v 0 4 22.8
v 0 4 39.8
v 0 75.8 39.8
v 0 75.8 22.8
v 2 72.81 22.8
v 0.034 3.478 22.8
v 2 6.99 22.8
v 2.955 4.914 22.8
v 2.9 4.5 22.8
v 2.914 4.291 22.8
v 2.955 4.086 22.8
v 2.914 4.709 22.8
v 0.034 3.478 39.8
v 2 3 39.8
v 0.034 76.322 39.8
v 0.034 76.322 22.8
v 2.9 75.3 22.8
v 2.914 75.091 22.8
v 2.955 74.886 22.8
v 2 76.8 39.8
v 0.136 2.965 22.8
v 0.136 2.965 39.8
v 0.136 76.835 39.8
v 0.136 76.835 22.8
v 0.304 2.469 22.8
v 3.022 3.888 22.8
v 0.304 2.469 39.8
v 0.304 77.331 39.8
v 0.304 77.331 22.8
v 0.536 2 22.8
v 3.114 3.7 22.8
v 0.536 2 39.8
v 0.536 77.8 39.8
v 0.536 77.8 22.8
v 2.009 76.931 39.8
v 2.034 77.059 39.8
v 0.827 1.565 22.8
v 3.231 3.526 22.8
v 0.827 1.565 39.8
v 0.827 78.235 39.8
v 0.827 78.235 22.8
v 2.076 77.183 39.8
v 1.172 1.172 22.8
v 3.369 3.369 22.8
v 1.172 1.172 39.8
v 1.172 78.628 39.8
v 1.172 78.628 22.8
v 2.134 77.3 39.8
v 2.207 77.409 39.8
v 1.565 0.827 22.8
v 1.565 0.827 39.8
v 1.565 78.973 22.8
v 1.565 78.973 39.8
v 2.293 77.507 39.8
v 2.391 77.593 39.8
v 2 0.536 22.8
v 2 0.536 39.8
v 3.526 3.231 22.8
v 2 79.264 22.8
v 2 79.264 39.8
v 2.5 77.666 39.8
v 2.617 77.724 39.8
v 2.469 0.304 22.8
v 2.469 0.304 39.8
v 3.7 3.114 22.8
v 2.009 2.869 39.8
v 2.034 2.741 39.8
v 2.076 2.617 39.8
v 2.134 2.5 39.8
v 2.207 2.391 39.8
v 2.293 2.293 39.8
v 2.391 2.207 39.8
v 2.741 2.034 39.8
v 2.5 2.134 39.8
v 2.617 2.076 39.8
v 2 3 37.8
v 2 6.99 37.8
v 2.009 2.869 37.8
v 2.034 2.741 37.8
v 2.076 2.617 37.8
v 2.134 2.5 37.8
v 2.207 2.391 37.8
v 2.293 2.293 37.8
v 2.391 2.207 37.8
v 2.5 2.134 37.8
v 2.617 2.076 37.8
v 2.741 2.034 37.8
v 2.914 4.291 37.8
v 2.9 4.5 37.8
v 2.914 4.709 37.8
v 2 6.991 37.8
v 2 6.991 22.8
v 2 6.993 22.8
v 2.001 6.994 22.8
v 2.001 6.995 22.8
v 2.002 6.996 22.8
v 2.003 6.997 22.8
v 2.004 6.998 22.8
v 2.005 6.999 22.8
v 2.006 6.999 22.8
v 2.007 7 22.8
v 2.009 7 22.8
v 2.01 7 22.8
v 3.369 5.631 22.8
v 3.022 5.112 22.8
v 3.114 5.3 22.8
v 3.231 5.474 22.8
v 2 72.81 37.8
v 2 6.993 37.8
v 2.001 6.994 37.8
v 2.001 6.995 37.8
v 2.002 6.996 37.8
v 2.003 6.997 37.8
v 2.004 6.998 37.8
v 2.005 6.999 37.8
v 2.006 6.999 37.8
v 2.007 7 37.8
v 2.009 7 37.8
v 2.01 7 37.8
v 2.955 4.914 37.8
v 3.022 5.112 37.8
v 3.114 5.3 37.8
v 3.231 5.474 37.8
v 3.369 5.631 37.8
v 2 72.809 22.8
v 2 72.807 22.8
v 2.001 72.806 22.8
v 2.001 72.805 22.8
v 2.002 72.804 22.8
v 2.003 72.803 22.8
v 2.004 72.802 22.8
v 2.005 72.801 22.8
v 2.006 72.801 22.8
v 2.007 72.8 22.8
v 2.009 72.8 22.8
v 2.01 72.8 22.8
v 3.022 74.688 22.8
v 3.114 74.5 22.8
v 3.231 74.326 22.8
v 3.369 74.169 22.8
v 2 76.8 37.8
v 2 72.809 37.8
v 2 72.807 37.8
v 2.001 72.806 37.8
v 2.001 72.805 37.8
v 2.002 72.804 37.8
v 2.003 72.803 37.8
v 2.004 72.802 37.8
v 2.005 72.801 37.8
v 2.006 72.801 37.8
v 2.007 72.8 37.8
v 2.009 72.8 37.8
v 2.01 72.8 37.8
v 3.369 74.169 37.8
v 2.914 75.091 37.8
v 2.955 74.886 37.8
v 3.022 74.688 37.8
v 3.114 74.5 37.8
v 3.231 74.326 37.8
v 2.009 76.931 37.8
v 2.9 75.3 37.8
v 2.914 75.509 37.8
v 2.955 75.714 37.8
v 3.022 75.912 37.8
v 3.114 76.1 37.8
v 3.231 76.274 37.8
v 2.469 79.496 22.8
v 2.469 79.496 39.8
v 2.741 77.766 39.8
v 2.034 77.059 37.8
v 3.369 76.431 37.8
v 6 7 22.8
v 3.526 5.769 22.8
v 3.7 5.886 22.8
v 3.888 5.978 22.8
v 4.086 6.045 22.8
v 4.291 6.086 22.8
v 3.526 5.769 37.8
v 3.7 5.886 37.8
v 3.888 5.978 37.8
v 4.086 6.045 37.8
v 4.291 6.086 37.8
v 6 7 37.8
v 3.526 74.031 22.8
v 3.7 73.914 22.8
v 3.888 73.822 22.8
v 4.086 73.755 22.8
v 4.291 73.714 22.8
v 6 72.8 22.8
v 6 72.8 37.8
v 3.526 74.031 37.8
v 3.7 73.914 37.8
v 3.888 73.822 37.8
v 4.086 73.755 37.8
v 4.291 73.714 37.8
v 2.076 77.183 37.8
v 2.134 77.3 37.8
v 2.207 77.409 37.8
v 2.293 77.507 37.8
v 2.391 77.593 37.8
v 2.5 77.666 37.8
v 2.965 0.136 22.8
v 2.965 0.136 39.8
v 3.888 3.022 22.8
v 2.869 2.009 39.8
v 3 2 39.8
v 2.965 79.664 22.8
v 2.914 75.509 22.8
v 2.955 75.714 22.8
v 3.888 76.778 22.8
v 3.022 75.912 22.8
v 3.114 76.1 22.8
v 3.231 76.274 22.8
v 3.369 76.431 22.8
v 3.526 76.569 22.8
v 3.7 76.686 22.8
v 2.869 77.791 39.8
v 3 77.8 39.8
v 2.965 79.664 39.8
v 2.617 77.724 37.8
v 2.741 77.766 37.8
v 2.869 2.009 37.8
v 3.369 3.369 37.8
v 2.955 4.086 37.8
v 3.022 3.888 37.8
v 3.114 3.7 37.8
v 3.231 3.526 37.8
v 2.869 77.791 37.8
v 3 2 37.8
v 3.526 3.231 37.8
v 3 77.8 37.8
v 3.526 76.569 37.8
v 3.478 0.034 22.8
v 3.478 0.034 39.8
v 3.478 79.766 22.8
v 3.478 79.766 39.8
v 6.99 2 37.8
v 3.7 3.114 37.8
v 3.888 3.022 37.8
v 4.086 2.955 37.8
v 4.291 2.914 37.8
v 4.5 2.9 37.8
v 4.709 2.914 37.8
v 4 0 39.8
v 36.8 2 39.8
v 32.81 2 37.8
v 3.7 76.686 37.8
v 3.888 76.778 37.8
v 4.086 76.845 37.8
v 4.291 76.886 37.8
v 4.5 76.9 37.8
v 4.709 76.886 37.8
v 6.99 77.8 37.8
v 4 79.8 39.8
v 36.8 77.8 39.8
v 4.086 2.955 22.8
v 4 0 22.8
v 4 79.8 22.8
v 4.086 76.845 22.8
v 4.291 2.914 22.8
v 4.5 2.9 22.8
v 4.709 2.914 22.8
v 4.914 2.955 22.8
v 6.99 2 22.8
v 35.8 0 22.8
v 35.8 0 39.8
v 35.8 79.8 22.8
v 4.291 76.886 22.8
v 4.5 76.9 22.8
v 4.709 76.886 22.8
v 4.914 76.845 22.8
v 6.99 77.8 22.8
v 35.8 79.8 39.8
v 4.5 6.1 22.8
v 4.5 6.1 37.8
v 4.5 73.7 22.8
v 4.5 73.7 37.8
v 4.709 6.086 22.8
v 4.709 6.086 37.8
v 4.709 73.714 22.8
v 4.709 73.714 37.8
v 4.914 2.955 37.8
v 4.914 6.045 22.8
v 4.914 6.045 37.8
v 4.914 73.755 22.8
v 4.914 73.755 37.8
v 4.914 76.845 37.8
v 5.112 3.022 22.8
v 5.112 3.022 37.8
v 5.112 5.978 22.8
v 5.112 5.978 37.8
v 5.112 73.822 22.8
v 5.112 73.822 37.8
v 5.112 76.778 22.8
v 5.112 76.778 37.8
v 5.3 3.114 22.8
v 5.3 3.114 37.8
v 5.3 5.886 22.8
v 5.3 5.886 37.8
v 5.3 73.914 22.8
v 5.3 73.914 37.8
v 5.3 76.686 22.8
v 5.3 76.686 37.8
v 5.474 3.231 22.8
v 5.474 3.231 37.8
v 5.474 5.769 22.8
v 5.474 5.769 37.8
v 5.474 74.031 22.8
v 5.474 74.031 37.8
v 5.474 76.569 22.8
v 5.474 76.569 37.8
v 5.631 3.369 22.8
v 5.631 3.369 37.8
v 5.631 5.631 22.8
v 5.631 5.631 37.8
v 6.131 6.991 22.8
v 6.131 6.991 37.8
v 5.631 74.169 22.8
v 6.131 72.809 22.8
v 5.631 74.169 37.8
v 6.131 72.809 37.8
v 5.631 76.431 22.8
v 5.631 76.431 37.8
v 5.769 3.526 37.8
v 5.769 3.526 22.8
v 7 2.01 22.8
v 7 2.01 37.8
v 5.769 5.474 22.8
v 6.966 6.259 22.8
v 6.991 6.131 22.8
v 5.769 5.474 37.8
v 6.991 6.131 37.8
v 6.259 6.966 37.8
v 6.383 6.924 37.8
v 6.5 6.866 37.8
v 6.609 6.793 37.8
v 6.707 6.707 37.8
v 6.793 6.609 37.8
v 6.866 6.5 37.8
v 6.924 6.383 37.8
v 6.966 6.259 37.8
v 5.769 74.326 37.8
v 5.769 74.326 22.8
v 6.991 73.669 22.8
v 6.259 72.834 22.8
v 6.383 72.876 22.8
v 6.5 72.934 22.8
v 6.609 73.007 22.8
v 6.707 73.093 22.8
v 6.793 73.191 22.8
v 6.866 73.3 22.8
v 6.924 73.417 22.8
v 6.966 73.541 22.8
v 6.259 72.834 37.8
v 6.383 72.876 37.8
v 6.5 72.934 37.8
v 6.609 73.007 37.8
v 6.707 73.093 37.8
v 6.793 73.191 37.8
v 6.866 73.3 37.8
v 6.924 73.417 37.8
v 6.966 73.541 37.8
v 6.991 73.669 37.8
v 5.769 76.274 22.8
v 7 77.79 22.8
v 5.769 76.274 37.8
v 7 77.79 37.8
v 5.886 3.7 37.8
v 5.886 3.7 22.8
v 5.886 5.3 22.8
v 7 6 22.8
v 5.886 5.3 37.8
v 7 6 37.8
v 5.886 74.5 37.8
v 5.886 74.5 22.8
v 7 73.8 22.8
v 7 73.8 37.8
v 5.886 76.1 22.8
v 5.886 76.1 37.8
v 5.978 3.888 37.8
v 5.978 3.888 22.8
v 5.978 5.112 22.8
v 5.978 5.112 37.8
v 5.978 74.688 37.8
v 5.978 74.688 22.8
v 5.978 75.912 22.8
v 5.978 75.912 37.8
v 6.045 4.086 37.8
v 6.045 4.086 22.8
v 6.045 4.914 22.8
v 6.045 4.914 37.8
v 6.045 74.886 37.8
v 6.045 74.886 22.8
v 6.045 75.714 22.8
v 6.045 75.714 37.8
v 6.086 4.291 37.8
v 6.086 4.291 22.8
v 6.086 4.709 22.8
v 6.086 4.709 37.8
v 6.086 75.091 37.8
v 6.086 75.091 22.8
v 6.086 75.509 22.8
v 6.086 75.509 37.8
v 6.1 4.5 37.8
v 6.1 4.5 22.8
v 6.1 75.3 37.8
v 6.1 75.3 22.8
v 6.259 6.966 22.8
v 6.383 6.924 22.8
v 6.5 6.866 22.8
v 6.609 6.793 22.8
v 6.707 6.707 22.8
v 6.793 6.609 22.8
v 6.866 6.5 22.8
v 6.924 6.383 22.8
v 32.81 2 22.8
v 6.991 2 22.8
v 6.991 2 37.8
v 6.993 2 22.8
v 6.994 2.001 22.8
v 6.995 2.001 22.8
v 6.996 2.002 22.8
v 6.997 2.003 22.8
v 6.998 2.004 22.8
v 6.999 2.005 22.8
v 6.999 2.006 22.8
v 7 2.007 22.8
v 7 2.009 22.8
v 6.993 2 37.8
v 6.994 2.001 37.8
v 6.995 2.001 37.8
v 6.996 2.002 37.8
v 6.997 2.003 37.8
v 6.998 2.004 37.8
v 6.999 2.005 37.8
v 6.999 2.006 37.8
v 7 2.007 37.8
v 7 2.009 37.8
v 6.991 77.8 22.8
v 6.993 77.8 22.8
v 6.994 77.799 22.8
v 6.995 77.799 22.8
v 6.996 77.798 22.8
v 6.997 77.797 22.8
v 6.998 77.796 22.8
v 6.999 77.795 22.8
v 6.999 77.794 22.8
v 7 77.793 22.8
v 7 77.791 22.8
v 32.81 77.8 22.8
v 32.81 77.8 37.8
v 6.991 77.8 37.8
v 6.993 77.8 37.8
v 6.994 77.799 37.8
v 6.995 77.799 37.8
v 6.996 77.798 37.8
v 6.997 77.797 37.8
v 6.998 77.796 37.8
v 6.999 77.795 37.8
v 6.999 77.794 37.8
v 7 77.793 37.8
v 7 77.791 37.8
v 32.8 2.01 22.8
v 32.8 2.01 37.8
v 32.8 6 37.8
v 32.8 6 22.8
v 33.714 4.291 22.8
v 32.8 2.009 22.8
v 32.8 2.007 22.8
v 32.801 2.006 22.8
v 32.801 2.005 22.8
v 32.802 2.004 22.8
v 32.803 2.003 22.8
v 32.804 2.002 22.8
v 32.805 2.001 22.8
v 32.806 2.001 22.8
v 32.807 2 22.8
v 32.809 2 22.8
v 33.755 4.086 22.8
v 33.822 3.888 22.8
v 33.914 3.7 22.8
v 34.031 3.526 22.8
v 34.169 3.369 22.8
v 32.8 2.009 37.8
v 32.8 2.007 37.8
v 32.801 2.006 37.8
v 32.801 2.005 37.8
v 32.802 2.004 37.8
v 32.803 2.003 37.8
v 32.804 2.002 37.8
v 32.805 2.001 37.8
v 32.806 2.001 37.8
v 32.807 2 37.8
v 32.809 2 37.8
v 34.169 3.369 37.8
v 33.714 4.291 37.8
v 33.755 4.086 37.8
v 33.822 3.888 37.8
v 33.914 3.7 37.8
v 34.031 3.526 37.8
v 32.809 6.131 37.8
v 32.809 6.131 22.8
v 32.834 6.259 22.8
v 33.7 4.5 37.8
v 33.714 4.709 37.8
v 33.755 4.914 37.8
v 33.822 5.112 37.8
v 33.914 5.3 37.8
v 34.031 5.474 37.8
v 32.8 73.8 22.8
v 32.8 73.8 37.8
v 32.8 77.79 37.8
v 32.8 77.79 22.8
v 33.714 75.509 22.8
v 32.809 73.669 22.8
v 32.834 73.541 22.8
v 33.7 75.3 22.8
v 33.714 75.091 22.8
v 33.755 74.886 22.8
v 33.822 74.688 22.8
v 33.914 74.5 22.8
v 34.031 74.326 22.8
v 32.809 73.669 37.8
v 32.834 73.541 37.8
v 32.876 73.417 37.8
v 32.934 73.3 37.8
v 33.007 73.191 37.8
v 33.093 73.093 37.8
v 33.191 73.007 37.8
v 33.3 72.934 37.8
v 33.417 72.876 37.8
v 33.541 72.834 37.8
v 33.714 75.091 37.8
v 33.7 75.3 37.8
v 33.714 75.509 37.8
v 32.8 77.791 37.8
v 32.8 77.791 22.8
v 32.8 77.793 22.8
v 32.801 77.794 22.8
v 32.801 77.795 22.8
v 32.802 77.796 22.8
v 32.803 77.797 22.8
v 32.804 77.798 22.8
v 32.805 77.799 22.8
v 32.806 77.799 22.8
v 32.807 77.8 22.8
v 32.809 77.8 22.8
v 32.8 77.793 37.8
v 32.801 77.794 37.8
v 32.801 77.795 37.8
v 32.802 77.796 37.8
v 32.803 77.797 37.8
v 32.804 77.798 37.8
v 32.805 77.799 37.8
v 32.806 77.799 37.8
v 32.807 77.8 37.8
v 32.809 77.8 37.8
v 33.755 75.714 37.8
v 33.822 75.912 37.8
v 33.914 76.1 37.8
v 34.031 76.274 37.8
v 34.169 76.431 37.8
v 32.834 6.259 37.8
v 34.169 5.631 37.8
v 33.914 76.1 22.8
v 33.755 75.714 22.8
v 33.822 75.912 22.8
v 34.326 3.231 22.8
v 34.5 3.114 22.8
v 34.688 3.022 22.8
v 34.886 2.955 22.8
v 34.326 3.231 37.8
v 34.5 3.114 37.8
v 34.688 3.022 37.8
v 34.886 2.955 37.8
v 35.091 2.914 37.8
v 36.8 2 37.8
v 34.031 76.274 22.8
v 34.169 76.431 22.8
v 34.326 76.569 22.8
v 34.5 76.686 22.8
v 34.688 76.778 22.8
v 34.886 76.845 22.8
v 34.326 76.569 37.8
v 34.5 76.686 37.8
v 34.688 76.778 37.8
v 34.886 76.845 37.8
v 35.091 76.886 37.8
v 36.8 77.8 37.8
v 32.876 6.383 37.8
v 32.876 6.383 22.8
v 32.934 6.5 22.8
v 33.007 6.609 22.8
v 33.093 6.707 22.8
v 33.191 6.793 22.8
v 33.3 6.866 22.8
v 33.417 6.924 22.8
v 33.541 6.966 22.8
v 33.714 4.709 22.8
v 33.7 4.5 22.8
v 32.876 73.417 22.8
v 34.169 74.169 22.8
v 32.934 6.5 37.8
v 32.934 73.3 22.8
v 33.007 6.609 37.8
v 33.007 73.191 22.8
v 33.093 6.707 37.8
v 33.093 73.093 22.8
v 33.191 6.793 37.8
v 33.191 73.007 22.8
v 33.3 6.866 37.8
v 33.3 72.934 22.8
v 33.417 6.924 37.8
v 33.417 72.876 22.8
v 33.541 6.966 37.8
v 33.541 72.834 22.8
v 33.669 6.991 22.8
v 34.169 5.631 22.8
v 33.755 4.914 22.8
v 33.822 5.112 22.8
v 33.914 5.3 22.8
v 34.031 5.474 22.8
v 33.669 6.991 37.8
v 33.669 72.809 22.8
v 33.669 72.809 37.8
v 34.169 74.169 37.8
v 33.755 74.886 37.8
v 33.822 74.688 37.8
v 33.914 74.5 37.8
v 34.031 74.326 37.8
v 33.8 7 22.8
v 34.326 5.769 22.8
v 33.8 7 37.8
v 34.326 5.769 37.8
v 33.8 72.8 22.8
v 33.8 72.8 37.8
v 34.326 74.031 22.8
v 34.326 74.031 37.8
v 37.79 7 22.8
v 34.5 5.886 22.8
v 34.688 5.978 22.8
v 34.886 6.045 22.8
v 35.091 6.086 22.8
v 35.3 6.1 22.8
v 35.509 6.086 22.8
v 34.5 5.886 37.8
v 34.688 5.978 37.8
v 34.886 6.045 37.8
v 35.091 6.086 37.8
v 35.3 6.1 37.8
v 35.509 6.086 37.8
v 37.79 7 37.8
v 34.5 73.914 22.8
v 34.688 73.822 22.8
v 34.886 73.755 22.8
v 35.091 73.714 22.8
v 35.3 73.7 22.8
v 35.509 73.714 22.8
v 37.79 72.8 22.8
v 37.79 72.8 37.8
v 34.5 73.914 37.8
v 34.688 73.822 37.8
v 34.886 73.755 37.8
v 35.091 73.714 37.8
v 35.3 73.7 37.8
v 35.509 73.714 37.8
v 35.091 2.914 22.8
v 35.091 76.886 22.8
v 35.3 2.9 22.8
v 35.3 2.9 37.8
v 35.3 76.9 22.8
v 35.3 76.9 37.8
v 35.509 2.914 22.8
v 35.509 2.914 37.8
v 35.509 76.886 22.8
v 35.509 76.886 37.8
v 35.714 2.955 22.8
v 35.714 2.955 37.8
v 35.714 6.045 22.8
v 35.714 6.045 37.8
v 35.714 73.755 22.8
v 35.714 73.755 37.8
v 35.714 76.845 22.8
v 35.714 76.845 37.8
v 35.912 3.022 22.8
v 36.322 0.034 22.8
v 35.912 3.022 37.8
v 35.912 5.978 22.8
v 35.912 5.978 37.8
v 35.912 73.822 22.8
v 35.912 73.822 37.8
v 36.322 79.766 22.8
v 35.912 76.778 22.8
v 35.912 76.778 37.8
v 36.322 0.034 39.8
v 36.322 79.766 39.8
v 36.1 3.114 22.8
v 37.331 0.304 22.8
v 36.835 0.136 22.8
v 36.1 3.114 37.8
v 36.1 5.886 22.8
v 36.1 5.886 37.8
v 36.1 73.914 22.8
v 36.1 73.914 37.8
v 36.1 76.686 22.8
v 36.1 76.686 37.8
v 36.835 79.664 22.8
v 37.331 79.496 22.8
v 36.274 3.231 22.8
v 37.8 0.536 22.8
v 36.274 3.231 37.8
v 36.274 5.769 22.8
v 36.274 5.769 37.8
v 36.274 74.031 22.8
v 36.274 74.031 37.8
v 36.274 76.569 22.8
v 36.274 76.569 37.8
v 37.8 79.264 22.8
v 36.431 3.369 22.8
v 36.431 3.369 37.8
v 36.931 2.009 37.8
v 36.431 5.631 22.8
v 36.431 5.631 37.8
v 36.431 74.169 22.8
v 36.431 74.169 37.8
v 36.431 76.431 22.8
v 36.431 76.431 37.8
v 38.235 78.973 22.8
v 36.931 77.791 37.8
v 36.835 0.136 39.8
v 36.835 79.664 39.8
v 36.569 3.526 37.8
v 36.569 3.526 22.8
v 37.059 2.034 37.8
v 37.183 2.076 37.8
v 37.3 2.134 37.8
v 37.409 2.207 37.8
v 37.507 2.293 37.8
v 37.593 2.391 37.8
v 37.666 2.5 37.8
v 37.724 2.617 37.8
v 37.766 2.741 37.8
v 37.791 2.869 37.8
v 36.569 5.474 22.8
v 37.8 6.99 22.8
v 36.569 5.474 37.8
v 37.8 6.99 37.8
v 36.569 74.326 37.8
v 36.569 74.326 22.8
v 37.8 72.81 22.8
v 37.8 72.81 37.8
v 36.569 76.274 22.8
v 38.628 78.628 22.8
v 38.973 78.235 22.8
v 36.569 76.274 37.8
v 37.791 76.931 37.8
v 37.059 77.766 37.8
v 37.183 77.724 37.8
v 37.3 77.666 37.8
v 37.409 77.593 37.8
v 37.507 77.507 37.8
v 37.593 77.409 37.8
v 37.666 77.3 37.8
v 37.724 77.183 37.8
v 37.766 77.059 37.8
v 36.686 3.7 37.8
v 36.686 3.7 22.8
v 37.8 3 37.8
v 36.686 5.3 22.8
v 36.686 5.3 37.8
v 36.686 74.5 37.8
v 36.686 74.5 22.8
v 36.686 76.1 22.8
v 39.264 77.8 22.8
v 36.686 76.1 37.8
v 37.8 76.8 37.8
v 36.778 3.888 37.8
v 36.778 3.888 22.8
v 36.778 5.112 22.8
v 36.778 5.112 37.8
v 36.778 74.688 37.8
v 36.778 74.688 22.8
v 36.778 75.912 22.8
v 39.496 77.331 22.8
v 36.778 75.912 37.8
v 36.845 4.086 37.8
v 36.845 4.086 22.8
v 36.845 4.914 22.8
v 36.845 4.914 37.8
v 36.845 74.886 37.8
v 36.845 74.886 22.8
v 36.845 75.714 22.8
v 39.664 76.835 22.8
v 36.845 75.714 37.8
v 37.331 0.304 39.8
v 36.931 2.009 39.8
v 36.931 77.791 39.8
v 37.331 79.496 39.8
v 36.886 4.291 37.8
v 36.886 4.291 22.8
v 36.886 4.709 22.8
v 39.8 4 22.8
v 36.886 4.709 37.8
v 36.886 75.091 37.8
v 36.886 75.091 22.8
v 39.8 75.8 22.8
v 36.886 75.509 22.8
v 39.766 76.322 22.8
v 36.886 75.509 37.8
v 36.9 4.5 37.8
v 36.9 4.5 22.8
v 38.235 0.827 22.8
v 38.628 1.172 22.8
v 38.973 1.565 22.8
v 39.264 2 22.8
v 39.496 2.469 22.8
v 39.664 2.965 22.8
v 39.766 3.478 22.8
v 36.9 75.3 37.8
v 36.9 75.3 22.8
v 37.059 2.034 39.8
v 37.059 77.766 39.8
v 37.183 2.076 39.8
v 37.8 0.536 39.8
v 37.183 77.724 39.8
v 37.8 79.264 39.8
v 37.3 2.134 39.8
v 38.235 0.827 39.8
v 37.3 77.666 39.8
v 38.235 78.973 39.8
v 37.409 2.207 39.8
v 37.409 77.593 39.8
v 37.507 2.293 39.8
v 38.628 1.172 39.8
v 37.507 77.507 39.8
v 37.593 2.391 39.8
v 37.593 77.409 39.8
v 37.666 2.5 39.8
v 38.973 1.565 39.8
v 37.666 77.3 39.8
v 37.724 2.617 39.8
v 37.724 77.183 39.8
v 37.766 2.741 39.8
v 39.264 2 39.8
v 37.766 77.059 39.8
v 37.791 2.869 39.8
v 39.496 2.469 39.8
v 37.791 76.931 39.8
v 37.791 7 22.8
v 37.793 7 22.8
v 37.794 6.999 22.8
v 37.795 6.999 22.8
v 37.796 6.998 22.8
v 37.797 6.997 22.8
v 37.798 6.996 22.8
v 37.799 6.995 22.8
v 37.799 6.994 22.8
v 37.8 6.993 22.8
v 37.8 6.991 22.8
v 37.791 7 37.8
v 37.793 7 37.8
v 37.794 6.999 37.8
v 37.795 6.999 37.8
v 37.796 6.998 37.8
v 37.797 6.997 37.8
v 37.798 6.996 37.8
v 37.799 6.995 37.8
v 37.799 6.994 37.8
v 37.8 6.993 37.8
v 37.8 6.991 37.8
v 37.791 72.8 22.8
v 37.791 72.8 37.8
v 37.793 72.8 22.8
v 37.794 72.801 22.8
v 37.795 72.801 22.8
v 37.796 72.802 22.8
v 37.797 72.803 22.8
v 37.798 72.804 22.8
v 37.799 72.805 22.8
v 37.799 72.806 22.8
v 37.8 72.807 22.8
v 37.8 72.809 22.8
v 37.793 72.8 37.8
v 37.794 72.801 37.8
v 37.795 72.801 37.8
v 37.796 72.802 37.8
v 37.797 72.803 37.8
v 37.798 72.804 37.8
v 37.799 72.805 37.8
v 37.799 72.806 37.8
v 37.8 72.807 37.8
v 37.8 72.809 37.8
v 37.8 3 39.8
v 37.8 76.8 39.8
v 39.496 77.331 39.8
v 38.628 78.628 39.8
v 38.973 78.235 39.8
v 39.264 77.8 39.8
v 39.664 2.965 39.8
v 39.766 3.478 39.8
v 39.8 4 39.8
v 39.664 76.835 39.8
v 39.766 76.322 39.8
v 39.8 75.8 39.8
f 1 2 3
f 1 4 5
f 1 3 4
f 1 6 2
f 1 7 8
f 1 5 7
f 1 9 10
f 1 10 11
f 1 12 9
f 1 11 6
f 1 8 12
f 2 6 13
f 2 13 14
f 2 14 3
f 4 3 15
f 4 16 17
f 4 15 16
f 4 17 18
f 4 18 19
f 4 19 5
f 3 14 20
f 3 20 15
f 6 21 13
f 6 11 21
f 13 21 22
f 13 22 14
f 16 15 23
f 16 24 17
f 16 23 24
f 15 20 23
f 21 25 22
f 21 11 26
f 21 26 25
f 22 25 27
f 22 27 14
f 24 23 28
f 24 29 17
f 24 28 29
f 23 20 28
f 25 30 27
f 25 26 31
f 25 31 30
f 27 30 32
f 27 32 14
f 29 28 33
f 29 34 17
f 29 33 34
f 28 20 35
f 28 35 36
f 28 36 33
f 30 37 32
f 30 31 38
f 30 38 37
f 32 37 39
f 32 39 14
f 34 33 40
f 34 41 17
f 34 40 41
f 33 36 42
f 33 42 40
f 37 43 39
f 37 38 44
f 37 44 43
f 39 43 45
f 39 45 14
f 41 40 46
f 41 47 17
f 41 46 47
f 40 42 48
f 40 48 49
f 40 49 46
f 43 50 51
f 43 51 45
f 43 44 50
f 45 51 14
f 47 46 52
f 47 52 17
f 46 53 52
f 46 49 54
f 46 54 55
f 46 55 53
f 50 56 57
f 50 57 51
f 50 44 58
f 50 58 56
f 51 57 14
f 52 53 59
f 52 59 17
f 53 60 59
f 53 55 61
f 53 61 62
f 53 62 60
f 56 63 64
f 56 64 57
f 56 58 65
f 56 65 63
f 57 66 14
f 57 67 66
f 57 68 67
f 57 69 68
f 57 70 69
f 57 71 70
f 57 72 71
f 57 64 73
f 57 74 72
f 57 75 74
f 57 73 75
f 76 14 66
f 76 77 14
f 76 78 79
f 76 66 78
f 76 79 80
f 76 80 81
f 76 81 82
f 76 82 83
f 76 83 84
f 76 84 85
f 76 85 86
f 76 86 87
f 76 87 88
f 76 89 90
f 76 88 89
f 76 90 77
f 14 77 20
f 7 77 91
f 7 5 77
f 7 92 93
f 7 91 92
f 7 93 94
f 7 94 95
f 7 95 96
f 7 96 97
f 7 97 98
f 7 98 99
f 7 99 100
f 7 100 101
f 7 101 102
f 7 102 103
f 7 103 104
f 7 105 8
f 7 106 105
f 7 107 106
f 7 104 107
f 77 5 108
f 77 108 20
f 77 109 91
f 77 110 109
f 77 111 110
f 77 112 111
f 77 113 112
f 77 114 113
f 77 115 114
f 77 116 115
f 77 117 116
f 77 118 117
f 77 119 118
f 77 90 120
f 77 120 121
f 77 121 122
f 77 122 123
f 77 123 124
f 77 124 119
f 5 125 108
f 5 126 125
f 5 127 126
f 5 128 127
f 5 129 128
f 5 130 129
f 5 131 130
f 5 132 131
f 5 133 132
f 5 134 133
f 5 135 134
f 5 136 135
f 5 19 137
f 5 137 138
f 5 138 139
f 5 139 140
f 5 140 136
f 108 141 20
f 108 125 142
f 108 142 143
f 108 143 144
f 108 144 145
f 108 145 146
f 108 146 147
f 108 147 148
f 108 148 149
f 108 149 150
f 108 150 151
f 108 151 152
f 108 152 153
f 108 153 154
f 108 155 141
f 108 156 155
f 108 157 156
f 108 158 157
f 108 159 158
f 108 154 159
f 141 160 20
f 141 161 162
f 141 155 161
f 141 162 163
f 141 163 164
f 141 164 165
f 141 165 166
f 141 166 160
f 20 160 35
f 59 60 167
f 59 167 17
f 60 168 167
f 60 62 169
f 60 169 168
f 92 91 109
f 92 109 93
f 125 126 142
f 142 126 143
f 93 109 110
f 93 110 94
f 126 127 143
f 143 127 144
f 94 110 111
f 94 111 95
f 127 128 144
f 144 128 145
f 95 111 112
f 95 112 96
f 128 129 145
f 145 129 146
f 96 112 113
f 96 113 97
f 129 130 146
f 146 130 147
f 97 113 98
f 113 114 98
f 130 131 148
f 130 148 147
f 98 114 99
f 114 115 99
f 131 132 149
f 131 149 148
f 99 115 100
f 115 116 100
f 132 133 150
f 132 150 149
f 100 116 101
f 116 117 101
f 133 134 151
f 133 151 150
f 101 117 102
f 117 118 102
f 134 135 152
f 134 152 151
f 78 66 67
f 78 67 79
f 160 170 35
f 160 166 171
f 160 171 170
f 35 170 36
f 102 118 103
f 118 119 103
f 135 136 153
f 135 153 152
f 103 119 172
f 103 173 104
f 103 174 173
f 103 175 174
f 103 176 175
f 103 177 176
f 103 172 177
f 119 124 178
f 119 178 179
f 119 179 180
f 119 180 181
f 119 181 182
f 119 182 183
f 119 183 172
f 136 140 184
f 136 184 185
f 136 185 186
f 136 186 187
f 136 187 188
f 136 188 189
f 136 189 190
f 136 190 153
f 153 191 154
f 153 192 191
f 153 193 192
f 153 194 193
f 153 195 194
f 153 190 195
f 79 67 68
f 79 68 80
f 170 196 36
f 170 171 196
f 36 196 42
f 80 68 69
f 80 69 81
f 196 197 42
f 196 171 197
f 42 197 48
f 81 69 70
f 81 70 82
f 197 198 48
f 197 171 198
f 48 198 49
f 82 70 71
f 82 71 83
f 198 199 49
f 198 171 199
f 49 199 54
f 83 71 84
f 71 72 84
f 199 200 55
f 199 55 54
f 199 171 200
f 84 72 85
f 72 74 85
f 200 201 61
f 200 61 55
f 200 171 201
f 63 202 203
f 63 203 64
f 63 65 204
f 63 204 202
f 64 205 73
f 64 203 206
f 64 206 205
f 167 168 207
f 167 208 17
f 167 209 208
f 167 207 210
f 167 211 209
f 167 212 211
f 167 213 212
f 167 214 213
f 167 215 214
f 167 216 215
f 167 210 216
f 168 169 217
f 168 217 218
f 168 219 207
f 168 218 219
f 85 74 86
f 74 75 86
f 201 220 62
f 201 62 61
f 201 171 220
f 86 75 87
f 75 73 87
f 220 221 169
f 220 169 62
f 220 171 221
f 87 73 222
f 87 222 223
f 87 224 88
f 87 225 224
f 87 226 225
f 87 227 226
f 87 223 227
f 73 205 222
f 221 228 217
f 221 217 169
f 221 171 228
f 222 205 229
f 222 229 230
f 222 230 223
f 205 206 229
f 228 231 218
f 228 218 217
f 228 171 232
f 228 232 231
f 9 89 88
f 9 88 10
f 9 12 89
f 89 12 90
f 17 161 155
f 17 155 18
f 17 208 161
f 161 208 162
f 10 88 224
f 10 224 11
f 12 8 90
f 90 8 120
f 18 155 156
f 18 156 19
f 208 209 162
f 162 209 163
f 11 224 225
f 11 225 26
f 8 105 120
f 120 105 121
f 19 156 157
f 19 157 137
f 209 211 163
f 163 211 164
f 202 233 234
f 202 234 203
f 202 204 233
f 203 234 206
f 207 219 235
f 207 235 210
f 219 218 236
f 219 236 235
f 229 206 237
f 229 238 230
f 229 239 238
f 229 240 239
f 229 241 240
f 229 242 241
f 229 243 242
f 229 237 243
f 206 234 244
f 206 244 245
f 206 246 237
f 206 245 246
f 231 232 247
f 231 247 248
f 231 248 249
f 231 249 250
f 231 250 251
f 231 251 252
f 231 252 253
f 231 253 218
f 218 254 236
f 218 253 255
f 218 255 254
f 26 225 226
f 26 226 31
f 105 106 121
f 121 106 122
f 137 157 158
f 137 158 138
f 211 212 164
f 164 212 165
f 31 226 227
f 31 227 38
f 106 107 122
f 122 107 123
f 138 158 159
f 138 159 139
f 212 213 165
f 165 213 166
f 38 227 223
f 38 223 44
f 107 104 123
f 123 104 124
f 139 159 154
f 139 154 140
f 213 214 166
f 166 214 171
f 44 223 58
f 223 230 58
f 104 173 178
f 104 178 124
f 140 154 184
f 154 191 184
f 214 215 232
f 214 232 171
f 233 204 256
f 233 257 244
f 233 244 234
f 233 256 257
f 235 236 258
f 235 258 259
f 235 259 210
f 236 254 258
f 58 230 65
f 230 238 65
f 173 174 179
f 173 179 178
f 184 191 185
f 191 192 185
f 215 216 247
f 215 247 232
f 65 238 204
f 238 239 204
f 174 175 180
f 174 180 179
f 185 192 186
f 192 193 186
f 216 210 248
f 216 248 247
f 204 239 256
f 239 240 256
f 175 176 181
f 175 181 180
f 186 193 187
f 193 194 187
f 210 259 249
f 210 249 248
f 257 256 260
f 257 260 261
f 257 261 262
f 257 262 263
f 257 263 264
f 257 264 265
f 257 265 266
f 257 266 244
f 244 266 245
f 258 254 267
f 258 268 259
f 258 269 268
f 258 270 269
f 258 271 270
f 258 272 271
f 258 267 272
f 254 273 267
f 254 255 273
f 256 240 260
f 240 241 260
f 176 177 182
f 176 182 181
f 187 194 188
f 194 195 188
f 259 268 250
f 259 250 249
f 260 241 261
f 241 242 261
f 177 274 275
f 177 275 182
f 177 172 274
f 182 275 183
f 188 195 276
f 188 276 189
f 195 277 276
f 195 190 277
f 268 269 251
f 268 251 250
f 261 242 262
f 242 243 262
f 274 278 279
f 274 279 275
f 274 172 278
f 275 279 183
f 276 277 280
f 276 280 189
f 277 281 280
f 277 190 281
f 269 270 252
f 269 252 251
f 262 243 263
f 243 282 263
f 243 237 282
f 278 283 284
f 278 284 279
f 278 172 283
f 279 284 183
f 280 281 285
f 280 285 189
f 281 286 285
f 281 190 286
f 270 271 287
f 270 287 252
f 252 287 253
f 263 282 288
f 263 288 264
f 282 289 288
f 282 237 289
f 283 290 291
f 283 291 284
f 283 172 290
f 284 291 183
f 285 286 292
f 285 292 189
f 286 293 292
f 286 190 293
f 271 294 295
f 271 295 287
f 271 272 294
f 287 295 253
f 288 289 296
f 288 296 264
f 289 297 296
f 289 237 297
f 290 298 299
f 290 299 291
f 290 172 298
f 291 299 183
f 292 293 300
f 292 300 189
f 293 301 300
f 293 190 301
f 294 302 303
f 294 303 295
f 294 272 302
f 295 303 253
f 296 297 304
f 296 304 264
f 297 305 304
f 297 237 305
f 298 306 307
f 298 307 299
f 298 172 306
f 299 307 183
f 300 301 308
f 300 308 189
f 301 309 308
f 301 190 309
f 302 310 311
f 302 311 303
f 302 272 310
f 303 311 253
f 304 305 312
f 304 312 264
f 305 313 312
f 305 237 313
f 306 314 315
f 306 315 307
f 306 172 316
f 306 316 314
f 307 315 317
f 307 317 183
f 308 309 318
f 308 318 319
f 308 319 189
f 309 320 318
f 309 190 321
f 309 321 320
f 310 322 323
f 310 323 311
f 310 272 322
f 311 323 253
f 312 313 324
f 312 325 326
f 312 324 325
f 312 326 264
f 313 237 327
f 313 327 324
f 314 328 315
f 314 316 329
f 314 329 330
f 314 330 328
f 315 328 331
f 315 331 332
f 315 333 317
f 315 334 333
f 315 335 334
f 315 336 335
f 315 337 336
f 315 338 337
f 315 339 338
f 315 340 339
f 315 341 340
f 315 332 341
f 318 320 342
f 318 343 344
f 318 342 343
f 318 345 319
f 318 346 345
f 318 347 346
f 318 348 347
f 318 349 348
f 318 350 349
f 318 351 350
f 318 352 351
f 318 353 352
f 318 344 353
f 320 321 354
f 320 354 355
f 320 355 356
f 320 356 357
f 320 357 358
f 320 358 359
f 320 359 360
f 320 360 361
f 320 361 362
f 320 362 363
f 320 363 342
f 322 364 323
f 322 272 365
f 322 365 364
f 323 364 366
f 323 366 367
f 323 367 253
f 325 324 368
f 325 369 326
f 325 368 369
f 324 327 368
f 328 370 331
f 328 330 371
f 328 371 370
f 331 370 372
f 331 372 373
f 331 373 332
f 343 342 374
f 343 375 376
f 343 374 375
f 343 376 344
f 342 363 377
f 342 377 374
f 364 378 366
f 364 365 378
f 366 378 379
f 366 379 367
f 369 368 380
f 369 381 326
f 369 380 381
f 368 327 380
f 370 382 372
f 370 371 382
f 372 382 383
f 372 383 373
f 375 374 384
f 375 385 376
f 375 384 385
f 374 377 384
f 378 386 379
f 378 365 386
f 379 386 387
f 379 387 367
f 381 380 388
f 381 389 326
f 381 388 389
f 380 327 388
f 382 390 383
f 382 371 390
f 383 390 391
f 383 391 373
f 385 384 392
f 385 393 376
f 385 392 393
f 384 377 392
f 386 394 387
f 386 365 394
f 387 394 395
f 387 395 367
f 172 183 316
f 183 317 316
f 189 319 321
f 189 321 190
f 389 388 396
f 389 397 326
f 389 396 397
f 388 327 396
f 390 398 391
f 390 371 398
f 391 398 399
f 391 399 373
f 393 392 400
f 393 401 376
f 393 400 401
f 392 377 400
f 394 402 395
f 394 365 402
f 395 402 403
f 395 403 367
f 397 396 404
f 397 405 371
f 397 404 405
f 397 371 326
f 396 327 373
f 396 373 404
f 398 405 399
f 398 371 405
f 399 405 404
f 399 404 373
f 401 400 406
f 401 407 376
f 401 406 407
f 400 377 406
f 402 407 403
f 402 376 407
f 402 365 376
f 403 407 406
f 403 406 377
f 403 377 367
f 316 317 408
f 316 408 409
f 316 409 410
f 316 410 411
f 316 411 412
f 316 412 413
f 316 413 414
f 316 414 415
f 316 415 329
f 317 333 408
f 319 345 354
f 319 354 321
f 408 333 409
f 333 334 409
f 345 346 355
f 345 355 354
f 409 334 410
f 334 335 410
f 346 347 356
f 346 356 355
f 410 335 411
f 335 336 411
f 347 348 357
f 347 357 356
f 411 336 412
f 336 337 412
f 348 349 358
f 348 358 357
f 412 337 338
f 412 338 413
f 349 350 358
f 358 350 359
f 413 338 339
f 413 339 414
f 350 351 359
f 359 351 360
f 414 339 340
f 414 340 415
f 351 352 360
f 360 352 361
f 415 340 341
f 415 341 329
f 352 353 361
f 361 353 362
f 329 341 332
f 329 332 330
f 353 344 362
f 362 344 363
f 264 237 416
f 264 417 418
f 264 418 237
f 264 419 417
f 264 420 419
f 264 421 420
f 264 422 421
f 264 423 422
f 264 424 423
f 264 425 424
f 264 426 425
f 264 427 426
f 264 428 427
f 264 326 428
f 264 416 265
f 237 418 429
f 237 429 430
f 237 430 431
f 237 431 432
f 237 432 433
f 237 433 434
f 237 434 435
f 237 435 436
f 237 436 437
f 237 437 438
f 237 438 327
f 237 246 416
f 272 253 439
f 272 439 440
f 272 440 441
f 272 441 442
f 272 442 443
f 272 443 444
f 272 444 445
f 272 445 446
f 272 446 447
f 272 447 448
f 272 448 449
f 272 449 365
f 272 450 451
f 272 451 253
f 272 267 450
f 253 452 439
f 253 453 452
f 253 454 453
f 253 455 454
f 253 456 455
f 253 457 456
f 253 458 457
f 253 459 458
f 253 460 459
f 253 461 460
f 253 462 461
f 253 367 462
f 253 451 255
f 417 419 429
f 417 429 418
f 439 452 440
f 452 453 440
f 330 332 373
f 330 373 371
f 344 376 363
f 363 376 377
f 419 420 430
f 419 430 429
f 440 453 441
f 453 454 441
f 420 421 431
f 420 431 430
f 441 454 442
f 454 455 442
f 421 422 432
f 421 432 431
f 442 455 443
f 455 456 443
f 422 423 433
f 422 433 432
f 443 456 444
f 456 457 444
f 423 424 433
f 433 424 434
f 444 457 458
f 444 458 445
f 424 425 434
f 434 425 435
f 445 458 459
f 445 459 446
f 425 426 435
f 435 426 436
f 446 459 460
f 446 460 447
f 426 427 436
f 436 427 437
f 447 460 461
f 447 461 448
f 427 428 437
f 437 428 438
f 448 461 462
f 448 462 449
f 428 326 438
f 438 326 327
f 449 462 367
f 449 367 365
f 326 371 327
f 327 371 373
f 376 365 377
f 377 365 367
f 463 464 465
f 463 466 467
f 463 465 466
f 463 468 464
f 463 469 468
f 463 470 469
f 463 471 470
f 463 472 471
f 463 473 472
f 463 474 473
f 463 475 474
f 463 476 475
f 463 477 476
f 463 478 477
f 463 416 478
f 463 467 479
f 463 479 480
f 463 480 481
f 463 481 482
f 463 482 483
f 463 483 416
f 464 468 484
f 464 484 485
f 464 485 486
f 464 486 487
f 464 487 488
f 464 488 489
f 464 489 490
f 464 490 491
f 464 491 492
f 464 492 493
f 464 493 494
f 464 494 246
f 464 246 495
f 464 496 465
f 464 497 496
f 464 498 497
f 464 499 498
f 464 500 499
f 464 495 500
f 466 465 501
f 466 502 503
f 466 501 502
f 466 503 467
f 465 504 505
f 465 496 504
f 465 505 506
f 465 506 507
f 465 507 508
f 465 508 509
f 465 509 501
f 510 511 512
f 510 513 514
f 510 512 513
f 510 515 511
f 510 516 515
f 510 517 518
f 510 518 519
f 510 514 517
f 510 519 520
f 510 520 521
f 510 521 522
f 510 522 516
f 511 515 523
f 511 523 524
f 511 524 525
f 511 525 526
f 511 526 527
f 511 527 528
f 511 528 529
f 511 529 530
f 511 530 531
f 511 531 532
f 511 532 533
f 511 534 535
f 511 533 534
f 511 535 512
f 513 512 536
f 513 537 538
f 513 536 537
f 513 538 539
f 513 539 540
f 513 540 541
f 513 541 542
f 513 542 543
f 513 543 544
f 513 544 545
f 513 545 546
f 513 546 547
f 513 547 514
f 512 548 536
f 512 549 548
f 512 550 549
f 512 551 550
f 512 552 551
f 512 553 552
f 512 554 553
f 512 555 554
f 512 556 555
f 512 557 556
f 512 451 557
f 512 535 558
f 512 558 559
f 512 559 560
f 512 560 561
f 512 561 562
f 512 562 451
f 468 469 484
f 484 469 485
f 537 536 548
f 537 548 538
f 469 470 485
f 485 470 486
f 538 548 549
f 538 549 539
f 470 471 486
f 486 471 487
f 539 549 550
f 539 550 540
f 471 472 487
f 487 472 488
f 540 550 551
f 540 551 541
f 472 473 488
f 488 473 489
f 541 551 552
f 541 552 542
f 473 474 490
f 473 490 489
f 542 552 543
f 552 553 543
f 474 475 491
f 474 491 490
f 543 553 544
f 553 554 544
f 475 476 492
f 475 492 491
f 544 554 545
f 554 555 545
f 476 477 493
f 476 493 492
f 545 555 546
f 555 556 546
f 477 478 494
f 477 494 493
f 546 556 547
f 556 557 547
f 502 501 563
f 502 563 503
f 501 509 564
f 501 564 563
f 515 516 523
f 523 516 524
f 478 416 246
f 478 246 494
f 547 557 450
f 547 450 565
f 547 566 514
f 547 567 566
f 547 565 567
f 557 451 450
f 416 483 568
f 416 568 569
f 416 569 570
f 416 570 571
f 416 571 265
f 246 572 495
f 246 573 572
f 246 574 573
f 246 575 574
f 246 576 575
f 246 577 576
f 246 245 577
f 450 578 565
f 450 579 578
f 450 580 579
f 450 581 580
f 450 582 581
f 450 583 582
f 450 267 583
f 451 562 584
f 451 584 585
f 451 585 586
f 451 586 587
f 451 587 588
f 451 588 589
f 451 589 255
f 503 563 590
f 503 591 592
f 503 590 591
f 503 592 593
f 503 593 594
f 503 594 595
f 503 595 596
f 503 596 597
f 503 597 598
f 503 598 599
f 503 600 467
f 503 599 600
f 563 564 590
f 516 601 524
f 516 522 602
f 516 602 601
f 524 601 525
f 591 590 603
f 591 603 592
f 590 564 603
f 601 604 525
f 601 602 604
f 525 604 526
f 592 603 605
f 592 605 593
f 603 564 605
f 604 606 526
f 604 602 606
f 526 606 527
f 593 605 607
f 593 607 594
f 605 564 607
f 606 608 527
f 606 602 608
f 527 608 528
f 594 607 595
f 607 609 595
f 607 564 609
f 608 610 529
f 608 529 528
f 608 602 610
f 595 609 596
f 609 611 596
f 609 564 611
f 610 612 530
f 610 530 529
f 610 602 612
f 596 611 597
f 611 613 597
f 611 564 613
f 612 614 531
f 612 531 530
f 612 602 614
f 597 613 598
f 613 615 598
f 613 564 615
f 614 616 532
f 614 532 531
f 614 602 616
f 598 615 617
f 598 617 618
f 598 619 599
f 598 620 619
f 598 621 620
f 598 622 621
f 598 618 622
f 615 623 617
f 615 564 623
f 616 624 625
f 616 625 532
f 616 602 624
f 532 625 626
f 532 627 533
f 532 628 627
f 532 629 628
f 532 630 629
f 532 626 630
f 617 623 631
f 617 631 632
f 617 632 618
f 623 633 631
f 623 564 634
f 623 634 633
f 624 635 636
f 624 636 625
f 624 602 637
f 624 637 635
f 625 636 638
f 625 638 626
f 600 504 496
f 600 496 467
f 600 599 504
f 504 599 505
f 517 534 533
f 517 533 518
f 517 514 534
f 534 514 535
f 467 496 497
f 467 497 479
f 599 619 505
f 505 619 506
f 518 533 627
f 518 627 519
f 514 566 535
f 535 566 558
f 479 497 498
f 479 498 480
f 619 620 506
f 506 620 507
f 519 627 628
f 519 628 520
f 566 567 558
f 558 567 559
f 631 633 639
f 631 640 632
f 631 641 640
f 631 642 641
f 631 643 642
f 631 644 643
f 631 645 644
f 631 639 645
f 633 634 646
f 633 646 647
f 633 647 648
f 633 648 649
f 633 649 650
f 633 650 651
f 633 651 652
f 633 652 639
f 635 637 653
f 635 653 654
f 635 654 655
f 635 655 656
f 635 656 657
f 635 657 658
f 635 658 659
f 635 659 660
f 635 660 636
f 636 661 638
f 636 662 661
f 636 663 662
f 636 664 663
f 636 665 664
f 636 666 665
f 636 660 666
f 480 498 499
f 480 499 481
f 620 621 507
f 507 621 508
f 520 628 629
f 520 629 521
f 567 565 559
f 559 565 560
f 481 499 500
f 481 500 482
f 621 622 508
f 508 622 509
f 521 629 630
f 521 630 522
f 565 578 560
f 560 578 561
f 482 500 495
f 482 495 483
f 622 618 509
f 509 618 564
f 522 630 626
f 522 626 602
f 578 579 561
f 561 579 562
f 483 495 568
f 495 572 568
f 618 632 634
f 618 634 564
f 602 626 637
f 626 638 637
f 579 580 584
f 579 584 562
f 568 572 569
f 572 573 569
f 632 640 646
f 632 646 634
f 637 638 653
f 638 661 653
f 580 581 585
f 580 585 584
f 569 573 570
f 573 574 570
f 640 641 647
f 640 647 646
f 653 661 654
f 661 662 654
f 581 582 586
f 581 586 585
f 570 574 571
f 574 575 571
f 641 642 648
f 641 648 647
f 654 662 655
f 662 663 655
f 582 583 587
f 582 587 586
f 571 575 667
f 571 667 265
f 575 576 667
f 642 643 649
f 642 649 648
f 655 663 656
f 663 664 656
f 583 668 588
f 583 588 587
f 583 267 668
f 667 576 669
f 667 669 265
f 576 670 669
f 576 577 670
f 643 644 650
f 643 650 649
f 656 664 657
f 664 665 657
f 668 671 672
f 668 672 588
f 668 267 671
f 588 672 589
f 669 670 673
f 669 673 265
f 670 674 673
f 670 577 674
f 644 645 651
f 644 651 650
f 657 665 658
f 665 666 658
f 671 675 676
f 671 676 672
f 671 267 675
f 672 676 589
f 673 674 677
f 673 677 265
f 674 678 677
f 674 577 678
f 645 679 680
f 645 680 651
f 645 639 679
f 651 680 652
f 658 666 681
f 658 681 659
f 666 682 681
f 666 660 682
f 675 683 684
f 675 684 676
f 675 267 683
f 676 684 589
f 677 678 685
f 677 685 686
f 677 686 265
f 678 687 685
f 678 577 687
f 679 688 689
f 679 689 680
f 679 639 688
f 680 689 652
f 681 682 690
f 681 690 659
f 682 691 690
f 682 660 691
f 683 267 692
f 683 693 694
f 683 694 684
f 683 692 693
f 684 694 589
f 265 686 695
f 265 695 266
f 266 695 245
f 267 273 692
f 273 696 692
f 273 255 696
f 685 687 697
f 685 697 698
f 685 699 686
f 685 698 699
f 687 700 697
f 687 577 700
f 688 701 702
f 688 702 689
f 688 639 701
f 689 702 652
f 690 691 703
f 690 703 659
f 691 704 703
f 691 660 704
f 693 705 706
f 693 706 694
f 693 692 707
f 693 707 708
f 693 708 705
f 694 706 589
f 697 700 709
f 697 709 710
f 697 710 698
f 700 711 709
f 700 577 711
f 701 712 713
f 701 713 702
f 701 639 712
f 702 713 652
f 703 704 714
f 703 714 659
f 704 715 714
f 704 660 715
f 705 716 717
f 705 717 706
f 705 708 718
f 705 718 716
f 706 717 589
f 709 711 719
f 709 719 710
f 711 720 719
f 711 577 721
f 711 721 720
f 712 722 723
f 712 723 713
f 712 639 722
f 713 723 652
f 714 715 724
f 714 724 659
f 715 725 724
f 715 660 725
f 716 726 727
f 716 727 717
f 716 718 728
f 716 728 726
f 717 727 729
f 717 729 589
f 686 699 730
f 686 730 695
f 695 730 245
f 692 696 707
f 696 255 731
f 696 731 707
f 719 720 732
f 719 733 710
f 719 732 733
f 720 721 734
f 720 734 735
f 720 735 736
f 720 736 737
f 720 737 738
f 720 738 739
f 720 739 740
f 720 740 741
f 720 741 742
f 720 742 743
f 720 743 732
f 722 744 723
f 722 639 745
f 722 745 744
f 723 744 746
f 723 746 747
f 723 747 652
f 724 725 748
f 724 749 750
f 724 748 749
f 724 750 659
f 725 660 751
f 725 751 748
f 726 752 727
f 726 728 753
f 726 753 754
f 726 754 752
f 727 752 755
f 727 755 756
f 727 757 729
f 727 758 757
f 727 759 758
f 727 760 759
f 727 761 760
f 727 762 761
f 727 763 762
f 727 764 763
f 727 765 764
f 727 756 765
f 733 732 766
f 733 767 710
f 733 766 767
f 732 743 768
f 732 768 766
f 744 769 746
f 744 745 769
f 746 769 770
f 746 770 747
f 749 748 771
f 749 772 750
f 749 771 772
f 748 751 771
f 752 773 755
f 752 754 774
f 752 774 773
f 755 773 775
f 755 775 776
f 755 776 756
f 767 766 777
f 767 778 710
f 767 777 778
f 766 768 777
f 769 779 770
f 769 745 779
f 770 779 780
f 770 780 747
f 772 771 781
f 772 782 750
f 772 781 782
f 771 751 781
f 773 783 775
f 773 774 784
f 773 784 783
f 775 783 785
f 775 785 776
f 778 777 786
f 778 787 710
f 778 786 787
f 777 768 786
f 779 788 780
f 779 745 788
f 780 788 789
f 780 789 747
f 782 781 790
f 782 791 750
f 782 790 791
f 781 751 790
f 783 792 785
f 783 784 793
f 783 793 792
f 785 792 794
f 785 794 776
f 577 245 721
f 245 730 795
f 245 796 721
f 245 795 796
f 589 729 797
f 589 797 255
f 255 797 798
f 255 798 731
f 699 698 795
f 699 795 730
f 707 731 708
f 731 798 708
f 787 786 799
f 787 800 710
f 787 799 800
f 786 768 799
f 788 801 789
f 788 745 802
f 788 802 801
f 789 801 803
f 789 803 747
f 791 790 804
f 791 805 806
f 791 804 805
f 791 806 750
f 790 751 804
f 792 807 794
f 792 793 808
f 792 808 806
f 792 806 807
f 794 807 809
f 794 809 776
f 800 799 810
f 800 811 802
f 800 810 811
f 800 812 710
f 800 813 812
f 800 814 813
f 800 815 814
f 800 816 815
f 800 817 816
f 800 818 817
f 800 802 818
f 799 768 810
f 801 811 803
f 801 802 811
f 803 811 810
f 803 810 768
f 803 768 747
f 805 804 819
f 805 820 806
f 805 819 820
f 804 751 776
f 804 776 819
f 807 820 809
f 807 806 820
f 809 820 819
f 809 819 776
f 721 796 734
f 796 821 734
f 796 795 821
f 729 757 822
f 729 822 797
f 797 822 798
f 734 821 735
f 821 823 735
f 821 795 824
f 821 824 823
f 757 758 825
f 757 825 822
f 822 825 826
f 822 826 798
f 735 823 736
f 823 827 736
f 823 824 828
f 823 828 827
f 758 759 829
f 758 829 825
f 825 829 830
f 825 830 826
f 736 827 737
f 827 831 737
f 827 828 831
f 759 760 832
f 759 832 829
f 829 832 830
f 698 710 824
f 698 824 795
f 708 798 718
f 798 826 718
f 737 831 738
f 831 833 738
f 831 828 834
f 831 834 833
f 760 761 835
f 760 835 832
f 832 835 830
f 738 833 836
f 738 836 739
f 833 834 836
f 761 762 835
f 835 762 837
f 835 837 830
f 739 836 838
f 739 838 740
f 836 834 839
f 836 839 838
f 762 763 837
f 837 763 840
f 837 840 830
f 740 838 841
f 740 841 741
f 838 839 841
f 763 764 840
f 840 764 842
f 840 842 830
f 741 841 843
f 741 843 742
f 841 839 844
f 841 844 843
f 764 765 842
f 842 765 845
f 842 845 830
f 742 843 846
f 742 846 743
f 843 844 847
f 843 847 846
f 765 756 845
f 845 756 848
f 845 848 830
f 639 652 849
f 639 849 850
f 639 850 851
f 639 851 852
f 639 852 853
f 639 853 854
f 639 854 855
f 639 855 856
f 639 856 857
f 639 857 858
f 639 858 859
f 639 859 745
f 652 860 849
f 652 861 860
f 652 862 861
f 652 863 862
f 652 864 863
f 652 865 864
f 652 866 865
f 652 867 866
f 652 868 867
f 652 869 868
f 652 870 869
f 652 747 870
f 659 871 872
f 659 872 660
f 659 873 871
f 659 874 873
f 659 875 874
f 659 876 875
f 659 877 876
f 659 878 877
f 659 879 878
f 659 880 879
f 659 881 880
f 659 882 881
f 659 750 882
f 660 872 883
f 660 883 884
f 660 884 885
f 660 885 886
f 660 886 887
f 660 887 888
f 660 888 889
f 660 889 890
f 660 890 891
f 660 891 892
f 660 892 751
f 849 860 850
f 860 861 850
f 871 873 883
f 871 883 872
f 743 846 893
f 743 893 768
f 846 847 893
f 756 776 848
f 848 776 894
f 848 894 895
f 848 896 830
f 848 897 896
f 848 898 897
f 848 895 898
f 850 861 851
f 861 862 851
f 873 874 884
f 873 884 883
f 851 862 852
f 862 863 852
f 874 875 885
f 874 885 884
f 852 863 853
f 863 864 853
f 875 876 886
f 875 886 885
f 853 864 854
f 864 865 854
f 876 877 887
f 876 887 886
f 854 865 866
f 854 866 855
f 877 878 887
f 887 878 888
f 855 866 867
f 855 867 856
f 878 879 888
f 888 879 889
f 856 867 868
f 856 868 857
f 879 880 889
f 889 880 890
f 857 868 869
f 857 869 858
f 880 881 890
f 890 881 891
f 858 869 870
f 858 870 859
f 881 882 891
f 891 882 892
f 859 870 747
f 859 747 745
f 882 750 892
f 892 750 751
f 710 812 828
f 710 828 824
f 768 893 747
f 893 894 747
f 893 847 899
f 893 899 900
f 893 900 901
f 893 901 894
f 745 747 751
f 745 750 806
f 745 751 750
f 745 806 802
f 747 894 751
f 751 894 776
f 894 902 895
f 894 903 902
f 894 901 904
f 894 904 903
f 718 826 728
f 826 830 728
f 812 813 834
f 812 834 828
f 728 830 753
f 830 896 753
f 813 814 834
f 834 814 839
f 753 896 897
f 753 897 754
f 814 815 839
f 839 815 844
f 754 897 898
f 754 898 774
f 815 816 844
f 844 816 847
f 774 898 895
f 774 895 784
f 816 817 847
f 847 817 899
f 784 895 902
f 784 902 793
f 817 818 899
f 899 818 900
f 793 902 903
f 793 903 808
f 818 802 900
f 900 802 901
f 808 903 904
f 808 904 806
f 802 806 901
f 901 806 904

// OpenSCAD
// Dilder Top Cover v3 — open border frame with rounded inner corners for flush plate seating
//
// No dome, no floor — just the perimeter wall ring + 4 corner pillar posts.
// Solid border all around (no wire notch).
// Inner corners and countersink pocket are rounded to match the windowed plate's corner radius,
// allowing it to slide in flush at the pillar junctions.
//
// Export:
//   openscad -o top-cover-v3.3mf top-cover-v3.scad

$fn = 48;

// ---- Board (Olimex ESP32-S3-DevKit-Lipo) ----
board_len      = 56;
board_wid      = 28;
antenna_proj   = 6;

// ---- Waveshare 2.13" display ----
disp_len       = 65;
disp_wid       = 30;
disp_thk       = 5;

// ---- 1000 mAh battery ----
bat_len        = 52;
bat_wid        = 35;

// ---- Enclosure geometry ----
wall_thk       = 2;
plate_thk      = 2;
pillar         = 5;
slop           = 0.4;
bat_chamber_h  = 6;
disp_clear     = 1;
board_thk      = 1.6;
wroom_h        = 3.2;
top_gap        = 15;       // +10mm height

screw_clr      = 3.2;

// ---- Rounding ----
case_corner_r  = 4;
plate_corner_r = 1;       // must match windowed plate's corner radius

// ---- Z layout ----
z_base_top     = plate_thk;
z_mid_bot      = z_base_top + bat_chamber_h;
z_mid_top      = z_mid_bot + plate_thk;
z_board_bot    = z_mid_top;
z_board_top    = z_board_bot + board_thk;
z_wroom_top    = z_board_top + wroom_h;
z_disp_bot     = z_wroom_top + disp_clear;
z_disp_top     = z_disp_bot + disp_thk;
base_wall_top  = z_disp_top + plate_thk;
z_cover_bot    = base_wall_top;
cover_h        = plate_thk + top_gap;

// ---- XY layout ----
inner_wid      = max(board_wid, disp_wid, bat_wid) + 2 * slop;
inner_len      = max(board_len + antenna_proj, disp_len + 2 * pillar, bat_len) + 2 * slop;
outer_wid      = inner_wid + 2 * wall_thk;
outer_len      = inner_len + 2 * wall_thk;

pillar_xy = [
    [wall_thk,                             wall_thk                            ],
    [outer_wid - wall_thk - pillar,        wall_thk                            ],
    [wall_thk,                             outer_len - wall_thk - pillar       ],
    [outer_wid - wall_thk - pillar,        outer_len - wall_thk - pillar       ],
];


// ============== SHARED ==============

module rounded_v_box(w, l, h, r, fn = 48) {
    hull() {
        for (x = [r, w - r])
            for (y = [r, l - r])
                translate([x, y, 0])
                    cylinder(r = r, h = h, $fn = fn);
    }
}

// Pillar with only one corner rounded (the exposed inner corner).
// round_x/round_y: 0=near edge, 1=far edge — selects which corner gets the radius.
module pillar_one_round(w, l, h, r, round_x, round_y) {
    tiny = 0.01;
    hull() {
        for (ix = [0, 1])
            for (iy = [0, 1]) {
                cr = (ix == round_x && iy == round_y) ? r : tiny;
                translate([cr + ix * (w - 2*cr), cr + iy * (l - 2*cr), 0])
                    cylinder(r = cr, h = h, $fn = 48);
            }
    }
}


// ============== TOP COVER v3 ==============

module top_cover() {
    translate([0, 0, z_cover_bot])
    difference() {
        union() {
            // Outer wall ring — rounded outer edges, rounded inner edges
            difference() {
                rounded_v_box(outer_wid, outer_len, cover_h, case_corner_r);
                translate([wall_thk, wall_thk, -0.1])
                    rounded_v_box(inner_wid, inner_len, cover_h + 0.2, plate_corner_r);
            }

            // Pillar posts — only the exposed inner corner is rounded
            for (p = pillar_xy) {
                rx = (p[0] < outer_wid/2) ? 1 : 0;
                ry = (p[1] < outer_len/2) ? 1 : 0;
                translate([p[0], p[1], 0])
                    pillar_one_round(pillar, pillar, cover_h, plate_corner_r, rx, ry);
            }
        }

        // Countersink — single rounded pocket matching plate footprint
        // Cuts into pillar tops with rounded inner corners so plate seats flush
        translate([wall_thk, wall_thk, cover_h - plate_thk])
            rounded_v_box(inner_wid, inner_len, plate_thk + 0.1, plate_corner_r);

        // Screw clearance holes through pillars
        for (p = pillar_xy) {
            cx = p[0] + pillar/2;
            cy = p[1] + pillar/2;
            translate([cx, cy, -0.1])
                cylinder(h = cover_h + 0.2, d = screw_clr);
        }
    }
}

top_cover();
